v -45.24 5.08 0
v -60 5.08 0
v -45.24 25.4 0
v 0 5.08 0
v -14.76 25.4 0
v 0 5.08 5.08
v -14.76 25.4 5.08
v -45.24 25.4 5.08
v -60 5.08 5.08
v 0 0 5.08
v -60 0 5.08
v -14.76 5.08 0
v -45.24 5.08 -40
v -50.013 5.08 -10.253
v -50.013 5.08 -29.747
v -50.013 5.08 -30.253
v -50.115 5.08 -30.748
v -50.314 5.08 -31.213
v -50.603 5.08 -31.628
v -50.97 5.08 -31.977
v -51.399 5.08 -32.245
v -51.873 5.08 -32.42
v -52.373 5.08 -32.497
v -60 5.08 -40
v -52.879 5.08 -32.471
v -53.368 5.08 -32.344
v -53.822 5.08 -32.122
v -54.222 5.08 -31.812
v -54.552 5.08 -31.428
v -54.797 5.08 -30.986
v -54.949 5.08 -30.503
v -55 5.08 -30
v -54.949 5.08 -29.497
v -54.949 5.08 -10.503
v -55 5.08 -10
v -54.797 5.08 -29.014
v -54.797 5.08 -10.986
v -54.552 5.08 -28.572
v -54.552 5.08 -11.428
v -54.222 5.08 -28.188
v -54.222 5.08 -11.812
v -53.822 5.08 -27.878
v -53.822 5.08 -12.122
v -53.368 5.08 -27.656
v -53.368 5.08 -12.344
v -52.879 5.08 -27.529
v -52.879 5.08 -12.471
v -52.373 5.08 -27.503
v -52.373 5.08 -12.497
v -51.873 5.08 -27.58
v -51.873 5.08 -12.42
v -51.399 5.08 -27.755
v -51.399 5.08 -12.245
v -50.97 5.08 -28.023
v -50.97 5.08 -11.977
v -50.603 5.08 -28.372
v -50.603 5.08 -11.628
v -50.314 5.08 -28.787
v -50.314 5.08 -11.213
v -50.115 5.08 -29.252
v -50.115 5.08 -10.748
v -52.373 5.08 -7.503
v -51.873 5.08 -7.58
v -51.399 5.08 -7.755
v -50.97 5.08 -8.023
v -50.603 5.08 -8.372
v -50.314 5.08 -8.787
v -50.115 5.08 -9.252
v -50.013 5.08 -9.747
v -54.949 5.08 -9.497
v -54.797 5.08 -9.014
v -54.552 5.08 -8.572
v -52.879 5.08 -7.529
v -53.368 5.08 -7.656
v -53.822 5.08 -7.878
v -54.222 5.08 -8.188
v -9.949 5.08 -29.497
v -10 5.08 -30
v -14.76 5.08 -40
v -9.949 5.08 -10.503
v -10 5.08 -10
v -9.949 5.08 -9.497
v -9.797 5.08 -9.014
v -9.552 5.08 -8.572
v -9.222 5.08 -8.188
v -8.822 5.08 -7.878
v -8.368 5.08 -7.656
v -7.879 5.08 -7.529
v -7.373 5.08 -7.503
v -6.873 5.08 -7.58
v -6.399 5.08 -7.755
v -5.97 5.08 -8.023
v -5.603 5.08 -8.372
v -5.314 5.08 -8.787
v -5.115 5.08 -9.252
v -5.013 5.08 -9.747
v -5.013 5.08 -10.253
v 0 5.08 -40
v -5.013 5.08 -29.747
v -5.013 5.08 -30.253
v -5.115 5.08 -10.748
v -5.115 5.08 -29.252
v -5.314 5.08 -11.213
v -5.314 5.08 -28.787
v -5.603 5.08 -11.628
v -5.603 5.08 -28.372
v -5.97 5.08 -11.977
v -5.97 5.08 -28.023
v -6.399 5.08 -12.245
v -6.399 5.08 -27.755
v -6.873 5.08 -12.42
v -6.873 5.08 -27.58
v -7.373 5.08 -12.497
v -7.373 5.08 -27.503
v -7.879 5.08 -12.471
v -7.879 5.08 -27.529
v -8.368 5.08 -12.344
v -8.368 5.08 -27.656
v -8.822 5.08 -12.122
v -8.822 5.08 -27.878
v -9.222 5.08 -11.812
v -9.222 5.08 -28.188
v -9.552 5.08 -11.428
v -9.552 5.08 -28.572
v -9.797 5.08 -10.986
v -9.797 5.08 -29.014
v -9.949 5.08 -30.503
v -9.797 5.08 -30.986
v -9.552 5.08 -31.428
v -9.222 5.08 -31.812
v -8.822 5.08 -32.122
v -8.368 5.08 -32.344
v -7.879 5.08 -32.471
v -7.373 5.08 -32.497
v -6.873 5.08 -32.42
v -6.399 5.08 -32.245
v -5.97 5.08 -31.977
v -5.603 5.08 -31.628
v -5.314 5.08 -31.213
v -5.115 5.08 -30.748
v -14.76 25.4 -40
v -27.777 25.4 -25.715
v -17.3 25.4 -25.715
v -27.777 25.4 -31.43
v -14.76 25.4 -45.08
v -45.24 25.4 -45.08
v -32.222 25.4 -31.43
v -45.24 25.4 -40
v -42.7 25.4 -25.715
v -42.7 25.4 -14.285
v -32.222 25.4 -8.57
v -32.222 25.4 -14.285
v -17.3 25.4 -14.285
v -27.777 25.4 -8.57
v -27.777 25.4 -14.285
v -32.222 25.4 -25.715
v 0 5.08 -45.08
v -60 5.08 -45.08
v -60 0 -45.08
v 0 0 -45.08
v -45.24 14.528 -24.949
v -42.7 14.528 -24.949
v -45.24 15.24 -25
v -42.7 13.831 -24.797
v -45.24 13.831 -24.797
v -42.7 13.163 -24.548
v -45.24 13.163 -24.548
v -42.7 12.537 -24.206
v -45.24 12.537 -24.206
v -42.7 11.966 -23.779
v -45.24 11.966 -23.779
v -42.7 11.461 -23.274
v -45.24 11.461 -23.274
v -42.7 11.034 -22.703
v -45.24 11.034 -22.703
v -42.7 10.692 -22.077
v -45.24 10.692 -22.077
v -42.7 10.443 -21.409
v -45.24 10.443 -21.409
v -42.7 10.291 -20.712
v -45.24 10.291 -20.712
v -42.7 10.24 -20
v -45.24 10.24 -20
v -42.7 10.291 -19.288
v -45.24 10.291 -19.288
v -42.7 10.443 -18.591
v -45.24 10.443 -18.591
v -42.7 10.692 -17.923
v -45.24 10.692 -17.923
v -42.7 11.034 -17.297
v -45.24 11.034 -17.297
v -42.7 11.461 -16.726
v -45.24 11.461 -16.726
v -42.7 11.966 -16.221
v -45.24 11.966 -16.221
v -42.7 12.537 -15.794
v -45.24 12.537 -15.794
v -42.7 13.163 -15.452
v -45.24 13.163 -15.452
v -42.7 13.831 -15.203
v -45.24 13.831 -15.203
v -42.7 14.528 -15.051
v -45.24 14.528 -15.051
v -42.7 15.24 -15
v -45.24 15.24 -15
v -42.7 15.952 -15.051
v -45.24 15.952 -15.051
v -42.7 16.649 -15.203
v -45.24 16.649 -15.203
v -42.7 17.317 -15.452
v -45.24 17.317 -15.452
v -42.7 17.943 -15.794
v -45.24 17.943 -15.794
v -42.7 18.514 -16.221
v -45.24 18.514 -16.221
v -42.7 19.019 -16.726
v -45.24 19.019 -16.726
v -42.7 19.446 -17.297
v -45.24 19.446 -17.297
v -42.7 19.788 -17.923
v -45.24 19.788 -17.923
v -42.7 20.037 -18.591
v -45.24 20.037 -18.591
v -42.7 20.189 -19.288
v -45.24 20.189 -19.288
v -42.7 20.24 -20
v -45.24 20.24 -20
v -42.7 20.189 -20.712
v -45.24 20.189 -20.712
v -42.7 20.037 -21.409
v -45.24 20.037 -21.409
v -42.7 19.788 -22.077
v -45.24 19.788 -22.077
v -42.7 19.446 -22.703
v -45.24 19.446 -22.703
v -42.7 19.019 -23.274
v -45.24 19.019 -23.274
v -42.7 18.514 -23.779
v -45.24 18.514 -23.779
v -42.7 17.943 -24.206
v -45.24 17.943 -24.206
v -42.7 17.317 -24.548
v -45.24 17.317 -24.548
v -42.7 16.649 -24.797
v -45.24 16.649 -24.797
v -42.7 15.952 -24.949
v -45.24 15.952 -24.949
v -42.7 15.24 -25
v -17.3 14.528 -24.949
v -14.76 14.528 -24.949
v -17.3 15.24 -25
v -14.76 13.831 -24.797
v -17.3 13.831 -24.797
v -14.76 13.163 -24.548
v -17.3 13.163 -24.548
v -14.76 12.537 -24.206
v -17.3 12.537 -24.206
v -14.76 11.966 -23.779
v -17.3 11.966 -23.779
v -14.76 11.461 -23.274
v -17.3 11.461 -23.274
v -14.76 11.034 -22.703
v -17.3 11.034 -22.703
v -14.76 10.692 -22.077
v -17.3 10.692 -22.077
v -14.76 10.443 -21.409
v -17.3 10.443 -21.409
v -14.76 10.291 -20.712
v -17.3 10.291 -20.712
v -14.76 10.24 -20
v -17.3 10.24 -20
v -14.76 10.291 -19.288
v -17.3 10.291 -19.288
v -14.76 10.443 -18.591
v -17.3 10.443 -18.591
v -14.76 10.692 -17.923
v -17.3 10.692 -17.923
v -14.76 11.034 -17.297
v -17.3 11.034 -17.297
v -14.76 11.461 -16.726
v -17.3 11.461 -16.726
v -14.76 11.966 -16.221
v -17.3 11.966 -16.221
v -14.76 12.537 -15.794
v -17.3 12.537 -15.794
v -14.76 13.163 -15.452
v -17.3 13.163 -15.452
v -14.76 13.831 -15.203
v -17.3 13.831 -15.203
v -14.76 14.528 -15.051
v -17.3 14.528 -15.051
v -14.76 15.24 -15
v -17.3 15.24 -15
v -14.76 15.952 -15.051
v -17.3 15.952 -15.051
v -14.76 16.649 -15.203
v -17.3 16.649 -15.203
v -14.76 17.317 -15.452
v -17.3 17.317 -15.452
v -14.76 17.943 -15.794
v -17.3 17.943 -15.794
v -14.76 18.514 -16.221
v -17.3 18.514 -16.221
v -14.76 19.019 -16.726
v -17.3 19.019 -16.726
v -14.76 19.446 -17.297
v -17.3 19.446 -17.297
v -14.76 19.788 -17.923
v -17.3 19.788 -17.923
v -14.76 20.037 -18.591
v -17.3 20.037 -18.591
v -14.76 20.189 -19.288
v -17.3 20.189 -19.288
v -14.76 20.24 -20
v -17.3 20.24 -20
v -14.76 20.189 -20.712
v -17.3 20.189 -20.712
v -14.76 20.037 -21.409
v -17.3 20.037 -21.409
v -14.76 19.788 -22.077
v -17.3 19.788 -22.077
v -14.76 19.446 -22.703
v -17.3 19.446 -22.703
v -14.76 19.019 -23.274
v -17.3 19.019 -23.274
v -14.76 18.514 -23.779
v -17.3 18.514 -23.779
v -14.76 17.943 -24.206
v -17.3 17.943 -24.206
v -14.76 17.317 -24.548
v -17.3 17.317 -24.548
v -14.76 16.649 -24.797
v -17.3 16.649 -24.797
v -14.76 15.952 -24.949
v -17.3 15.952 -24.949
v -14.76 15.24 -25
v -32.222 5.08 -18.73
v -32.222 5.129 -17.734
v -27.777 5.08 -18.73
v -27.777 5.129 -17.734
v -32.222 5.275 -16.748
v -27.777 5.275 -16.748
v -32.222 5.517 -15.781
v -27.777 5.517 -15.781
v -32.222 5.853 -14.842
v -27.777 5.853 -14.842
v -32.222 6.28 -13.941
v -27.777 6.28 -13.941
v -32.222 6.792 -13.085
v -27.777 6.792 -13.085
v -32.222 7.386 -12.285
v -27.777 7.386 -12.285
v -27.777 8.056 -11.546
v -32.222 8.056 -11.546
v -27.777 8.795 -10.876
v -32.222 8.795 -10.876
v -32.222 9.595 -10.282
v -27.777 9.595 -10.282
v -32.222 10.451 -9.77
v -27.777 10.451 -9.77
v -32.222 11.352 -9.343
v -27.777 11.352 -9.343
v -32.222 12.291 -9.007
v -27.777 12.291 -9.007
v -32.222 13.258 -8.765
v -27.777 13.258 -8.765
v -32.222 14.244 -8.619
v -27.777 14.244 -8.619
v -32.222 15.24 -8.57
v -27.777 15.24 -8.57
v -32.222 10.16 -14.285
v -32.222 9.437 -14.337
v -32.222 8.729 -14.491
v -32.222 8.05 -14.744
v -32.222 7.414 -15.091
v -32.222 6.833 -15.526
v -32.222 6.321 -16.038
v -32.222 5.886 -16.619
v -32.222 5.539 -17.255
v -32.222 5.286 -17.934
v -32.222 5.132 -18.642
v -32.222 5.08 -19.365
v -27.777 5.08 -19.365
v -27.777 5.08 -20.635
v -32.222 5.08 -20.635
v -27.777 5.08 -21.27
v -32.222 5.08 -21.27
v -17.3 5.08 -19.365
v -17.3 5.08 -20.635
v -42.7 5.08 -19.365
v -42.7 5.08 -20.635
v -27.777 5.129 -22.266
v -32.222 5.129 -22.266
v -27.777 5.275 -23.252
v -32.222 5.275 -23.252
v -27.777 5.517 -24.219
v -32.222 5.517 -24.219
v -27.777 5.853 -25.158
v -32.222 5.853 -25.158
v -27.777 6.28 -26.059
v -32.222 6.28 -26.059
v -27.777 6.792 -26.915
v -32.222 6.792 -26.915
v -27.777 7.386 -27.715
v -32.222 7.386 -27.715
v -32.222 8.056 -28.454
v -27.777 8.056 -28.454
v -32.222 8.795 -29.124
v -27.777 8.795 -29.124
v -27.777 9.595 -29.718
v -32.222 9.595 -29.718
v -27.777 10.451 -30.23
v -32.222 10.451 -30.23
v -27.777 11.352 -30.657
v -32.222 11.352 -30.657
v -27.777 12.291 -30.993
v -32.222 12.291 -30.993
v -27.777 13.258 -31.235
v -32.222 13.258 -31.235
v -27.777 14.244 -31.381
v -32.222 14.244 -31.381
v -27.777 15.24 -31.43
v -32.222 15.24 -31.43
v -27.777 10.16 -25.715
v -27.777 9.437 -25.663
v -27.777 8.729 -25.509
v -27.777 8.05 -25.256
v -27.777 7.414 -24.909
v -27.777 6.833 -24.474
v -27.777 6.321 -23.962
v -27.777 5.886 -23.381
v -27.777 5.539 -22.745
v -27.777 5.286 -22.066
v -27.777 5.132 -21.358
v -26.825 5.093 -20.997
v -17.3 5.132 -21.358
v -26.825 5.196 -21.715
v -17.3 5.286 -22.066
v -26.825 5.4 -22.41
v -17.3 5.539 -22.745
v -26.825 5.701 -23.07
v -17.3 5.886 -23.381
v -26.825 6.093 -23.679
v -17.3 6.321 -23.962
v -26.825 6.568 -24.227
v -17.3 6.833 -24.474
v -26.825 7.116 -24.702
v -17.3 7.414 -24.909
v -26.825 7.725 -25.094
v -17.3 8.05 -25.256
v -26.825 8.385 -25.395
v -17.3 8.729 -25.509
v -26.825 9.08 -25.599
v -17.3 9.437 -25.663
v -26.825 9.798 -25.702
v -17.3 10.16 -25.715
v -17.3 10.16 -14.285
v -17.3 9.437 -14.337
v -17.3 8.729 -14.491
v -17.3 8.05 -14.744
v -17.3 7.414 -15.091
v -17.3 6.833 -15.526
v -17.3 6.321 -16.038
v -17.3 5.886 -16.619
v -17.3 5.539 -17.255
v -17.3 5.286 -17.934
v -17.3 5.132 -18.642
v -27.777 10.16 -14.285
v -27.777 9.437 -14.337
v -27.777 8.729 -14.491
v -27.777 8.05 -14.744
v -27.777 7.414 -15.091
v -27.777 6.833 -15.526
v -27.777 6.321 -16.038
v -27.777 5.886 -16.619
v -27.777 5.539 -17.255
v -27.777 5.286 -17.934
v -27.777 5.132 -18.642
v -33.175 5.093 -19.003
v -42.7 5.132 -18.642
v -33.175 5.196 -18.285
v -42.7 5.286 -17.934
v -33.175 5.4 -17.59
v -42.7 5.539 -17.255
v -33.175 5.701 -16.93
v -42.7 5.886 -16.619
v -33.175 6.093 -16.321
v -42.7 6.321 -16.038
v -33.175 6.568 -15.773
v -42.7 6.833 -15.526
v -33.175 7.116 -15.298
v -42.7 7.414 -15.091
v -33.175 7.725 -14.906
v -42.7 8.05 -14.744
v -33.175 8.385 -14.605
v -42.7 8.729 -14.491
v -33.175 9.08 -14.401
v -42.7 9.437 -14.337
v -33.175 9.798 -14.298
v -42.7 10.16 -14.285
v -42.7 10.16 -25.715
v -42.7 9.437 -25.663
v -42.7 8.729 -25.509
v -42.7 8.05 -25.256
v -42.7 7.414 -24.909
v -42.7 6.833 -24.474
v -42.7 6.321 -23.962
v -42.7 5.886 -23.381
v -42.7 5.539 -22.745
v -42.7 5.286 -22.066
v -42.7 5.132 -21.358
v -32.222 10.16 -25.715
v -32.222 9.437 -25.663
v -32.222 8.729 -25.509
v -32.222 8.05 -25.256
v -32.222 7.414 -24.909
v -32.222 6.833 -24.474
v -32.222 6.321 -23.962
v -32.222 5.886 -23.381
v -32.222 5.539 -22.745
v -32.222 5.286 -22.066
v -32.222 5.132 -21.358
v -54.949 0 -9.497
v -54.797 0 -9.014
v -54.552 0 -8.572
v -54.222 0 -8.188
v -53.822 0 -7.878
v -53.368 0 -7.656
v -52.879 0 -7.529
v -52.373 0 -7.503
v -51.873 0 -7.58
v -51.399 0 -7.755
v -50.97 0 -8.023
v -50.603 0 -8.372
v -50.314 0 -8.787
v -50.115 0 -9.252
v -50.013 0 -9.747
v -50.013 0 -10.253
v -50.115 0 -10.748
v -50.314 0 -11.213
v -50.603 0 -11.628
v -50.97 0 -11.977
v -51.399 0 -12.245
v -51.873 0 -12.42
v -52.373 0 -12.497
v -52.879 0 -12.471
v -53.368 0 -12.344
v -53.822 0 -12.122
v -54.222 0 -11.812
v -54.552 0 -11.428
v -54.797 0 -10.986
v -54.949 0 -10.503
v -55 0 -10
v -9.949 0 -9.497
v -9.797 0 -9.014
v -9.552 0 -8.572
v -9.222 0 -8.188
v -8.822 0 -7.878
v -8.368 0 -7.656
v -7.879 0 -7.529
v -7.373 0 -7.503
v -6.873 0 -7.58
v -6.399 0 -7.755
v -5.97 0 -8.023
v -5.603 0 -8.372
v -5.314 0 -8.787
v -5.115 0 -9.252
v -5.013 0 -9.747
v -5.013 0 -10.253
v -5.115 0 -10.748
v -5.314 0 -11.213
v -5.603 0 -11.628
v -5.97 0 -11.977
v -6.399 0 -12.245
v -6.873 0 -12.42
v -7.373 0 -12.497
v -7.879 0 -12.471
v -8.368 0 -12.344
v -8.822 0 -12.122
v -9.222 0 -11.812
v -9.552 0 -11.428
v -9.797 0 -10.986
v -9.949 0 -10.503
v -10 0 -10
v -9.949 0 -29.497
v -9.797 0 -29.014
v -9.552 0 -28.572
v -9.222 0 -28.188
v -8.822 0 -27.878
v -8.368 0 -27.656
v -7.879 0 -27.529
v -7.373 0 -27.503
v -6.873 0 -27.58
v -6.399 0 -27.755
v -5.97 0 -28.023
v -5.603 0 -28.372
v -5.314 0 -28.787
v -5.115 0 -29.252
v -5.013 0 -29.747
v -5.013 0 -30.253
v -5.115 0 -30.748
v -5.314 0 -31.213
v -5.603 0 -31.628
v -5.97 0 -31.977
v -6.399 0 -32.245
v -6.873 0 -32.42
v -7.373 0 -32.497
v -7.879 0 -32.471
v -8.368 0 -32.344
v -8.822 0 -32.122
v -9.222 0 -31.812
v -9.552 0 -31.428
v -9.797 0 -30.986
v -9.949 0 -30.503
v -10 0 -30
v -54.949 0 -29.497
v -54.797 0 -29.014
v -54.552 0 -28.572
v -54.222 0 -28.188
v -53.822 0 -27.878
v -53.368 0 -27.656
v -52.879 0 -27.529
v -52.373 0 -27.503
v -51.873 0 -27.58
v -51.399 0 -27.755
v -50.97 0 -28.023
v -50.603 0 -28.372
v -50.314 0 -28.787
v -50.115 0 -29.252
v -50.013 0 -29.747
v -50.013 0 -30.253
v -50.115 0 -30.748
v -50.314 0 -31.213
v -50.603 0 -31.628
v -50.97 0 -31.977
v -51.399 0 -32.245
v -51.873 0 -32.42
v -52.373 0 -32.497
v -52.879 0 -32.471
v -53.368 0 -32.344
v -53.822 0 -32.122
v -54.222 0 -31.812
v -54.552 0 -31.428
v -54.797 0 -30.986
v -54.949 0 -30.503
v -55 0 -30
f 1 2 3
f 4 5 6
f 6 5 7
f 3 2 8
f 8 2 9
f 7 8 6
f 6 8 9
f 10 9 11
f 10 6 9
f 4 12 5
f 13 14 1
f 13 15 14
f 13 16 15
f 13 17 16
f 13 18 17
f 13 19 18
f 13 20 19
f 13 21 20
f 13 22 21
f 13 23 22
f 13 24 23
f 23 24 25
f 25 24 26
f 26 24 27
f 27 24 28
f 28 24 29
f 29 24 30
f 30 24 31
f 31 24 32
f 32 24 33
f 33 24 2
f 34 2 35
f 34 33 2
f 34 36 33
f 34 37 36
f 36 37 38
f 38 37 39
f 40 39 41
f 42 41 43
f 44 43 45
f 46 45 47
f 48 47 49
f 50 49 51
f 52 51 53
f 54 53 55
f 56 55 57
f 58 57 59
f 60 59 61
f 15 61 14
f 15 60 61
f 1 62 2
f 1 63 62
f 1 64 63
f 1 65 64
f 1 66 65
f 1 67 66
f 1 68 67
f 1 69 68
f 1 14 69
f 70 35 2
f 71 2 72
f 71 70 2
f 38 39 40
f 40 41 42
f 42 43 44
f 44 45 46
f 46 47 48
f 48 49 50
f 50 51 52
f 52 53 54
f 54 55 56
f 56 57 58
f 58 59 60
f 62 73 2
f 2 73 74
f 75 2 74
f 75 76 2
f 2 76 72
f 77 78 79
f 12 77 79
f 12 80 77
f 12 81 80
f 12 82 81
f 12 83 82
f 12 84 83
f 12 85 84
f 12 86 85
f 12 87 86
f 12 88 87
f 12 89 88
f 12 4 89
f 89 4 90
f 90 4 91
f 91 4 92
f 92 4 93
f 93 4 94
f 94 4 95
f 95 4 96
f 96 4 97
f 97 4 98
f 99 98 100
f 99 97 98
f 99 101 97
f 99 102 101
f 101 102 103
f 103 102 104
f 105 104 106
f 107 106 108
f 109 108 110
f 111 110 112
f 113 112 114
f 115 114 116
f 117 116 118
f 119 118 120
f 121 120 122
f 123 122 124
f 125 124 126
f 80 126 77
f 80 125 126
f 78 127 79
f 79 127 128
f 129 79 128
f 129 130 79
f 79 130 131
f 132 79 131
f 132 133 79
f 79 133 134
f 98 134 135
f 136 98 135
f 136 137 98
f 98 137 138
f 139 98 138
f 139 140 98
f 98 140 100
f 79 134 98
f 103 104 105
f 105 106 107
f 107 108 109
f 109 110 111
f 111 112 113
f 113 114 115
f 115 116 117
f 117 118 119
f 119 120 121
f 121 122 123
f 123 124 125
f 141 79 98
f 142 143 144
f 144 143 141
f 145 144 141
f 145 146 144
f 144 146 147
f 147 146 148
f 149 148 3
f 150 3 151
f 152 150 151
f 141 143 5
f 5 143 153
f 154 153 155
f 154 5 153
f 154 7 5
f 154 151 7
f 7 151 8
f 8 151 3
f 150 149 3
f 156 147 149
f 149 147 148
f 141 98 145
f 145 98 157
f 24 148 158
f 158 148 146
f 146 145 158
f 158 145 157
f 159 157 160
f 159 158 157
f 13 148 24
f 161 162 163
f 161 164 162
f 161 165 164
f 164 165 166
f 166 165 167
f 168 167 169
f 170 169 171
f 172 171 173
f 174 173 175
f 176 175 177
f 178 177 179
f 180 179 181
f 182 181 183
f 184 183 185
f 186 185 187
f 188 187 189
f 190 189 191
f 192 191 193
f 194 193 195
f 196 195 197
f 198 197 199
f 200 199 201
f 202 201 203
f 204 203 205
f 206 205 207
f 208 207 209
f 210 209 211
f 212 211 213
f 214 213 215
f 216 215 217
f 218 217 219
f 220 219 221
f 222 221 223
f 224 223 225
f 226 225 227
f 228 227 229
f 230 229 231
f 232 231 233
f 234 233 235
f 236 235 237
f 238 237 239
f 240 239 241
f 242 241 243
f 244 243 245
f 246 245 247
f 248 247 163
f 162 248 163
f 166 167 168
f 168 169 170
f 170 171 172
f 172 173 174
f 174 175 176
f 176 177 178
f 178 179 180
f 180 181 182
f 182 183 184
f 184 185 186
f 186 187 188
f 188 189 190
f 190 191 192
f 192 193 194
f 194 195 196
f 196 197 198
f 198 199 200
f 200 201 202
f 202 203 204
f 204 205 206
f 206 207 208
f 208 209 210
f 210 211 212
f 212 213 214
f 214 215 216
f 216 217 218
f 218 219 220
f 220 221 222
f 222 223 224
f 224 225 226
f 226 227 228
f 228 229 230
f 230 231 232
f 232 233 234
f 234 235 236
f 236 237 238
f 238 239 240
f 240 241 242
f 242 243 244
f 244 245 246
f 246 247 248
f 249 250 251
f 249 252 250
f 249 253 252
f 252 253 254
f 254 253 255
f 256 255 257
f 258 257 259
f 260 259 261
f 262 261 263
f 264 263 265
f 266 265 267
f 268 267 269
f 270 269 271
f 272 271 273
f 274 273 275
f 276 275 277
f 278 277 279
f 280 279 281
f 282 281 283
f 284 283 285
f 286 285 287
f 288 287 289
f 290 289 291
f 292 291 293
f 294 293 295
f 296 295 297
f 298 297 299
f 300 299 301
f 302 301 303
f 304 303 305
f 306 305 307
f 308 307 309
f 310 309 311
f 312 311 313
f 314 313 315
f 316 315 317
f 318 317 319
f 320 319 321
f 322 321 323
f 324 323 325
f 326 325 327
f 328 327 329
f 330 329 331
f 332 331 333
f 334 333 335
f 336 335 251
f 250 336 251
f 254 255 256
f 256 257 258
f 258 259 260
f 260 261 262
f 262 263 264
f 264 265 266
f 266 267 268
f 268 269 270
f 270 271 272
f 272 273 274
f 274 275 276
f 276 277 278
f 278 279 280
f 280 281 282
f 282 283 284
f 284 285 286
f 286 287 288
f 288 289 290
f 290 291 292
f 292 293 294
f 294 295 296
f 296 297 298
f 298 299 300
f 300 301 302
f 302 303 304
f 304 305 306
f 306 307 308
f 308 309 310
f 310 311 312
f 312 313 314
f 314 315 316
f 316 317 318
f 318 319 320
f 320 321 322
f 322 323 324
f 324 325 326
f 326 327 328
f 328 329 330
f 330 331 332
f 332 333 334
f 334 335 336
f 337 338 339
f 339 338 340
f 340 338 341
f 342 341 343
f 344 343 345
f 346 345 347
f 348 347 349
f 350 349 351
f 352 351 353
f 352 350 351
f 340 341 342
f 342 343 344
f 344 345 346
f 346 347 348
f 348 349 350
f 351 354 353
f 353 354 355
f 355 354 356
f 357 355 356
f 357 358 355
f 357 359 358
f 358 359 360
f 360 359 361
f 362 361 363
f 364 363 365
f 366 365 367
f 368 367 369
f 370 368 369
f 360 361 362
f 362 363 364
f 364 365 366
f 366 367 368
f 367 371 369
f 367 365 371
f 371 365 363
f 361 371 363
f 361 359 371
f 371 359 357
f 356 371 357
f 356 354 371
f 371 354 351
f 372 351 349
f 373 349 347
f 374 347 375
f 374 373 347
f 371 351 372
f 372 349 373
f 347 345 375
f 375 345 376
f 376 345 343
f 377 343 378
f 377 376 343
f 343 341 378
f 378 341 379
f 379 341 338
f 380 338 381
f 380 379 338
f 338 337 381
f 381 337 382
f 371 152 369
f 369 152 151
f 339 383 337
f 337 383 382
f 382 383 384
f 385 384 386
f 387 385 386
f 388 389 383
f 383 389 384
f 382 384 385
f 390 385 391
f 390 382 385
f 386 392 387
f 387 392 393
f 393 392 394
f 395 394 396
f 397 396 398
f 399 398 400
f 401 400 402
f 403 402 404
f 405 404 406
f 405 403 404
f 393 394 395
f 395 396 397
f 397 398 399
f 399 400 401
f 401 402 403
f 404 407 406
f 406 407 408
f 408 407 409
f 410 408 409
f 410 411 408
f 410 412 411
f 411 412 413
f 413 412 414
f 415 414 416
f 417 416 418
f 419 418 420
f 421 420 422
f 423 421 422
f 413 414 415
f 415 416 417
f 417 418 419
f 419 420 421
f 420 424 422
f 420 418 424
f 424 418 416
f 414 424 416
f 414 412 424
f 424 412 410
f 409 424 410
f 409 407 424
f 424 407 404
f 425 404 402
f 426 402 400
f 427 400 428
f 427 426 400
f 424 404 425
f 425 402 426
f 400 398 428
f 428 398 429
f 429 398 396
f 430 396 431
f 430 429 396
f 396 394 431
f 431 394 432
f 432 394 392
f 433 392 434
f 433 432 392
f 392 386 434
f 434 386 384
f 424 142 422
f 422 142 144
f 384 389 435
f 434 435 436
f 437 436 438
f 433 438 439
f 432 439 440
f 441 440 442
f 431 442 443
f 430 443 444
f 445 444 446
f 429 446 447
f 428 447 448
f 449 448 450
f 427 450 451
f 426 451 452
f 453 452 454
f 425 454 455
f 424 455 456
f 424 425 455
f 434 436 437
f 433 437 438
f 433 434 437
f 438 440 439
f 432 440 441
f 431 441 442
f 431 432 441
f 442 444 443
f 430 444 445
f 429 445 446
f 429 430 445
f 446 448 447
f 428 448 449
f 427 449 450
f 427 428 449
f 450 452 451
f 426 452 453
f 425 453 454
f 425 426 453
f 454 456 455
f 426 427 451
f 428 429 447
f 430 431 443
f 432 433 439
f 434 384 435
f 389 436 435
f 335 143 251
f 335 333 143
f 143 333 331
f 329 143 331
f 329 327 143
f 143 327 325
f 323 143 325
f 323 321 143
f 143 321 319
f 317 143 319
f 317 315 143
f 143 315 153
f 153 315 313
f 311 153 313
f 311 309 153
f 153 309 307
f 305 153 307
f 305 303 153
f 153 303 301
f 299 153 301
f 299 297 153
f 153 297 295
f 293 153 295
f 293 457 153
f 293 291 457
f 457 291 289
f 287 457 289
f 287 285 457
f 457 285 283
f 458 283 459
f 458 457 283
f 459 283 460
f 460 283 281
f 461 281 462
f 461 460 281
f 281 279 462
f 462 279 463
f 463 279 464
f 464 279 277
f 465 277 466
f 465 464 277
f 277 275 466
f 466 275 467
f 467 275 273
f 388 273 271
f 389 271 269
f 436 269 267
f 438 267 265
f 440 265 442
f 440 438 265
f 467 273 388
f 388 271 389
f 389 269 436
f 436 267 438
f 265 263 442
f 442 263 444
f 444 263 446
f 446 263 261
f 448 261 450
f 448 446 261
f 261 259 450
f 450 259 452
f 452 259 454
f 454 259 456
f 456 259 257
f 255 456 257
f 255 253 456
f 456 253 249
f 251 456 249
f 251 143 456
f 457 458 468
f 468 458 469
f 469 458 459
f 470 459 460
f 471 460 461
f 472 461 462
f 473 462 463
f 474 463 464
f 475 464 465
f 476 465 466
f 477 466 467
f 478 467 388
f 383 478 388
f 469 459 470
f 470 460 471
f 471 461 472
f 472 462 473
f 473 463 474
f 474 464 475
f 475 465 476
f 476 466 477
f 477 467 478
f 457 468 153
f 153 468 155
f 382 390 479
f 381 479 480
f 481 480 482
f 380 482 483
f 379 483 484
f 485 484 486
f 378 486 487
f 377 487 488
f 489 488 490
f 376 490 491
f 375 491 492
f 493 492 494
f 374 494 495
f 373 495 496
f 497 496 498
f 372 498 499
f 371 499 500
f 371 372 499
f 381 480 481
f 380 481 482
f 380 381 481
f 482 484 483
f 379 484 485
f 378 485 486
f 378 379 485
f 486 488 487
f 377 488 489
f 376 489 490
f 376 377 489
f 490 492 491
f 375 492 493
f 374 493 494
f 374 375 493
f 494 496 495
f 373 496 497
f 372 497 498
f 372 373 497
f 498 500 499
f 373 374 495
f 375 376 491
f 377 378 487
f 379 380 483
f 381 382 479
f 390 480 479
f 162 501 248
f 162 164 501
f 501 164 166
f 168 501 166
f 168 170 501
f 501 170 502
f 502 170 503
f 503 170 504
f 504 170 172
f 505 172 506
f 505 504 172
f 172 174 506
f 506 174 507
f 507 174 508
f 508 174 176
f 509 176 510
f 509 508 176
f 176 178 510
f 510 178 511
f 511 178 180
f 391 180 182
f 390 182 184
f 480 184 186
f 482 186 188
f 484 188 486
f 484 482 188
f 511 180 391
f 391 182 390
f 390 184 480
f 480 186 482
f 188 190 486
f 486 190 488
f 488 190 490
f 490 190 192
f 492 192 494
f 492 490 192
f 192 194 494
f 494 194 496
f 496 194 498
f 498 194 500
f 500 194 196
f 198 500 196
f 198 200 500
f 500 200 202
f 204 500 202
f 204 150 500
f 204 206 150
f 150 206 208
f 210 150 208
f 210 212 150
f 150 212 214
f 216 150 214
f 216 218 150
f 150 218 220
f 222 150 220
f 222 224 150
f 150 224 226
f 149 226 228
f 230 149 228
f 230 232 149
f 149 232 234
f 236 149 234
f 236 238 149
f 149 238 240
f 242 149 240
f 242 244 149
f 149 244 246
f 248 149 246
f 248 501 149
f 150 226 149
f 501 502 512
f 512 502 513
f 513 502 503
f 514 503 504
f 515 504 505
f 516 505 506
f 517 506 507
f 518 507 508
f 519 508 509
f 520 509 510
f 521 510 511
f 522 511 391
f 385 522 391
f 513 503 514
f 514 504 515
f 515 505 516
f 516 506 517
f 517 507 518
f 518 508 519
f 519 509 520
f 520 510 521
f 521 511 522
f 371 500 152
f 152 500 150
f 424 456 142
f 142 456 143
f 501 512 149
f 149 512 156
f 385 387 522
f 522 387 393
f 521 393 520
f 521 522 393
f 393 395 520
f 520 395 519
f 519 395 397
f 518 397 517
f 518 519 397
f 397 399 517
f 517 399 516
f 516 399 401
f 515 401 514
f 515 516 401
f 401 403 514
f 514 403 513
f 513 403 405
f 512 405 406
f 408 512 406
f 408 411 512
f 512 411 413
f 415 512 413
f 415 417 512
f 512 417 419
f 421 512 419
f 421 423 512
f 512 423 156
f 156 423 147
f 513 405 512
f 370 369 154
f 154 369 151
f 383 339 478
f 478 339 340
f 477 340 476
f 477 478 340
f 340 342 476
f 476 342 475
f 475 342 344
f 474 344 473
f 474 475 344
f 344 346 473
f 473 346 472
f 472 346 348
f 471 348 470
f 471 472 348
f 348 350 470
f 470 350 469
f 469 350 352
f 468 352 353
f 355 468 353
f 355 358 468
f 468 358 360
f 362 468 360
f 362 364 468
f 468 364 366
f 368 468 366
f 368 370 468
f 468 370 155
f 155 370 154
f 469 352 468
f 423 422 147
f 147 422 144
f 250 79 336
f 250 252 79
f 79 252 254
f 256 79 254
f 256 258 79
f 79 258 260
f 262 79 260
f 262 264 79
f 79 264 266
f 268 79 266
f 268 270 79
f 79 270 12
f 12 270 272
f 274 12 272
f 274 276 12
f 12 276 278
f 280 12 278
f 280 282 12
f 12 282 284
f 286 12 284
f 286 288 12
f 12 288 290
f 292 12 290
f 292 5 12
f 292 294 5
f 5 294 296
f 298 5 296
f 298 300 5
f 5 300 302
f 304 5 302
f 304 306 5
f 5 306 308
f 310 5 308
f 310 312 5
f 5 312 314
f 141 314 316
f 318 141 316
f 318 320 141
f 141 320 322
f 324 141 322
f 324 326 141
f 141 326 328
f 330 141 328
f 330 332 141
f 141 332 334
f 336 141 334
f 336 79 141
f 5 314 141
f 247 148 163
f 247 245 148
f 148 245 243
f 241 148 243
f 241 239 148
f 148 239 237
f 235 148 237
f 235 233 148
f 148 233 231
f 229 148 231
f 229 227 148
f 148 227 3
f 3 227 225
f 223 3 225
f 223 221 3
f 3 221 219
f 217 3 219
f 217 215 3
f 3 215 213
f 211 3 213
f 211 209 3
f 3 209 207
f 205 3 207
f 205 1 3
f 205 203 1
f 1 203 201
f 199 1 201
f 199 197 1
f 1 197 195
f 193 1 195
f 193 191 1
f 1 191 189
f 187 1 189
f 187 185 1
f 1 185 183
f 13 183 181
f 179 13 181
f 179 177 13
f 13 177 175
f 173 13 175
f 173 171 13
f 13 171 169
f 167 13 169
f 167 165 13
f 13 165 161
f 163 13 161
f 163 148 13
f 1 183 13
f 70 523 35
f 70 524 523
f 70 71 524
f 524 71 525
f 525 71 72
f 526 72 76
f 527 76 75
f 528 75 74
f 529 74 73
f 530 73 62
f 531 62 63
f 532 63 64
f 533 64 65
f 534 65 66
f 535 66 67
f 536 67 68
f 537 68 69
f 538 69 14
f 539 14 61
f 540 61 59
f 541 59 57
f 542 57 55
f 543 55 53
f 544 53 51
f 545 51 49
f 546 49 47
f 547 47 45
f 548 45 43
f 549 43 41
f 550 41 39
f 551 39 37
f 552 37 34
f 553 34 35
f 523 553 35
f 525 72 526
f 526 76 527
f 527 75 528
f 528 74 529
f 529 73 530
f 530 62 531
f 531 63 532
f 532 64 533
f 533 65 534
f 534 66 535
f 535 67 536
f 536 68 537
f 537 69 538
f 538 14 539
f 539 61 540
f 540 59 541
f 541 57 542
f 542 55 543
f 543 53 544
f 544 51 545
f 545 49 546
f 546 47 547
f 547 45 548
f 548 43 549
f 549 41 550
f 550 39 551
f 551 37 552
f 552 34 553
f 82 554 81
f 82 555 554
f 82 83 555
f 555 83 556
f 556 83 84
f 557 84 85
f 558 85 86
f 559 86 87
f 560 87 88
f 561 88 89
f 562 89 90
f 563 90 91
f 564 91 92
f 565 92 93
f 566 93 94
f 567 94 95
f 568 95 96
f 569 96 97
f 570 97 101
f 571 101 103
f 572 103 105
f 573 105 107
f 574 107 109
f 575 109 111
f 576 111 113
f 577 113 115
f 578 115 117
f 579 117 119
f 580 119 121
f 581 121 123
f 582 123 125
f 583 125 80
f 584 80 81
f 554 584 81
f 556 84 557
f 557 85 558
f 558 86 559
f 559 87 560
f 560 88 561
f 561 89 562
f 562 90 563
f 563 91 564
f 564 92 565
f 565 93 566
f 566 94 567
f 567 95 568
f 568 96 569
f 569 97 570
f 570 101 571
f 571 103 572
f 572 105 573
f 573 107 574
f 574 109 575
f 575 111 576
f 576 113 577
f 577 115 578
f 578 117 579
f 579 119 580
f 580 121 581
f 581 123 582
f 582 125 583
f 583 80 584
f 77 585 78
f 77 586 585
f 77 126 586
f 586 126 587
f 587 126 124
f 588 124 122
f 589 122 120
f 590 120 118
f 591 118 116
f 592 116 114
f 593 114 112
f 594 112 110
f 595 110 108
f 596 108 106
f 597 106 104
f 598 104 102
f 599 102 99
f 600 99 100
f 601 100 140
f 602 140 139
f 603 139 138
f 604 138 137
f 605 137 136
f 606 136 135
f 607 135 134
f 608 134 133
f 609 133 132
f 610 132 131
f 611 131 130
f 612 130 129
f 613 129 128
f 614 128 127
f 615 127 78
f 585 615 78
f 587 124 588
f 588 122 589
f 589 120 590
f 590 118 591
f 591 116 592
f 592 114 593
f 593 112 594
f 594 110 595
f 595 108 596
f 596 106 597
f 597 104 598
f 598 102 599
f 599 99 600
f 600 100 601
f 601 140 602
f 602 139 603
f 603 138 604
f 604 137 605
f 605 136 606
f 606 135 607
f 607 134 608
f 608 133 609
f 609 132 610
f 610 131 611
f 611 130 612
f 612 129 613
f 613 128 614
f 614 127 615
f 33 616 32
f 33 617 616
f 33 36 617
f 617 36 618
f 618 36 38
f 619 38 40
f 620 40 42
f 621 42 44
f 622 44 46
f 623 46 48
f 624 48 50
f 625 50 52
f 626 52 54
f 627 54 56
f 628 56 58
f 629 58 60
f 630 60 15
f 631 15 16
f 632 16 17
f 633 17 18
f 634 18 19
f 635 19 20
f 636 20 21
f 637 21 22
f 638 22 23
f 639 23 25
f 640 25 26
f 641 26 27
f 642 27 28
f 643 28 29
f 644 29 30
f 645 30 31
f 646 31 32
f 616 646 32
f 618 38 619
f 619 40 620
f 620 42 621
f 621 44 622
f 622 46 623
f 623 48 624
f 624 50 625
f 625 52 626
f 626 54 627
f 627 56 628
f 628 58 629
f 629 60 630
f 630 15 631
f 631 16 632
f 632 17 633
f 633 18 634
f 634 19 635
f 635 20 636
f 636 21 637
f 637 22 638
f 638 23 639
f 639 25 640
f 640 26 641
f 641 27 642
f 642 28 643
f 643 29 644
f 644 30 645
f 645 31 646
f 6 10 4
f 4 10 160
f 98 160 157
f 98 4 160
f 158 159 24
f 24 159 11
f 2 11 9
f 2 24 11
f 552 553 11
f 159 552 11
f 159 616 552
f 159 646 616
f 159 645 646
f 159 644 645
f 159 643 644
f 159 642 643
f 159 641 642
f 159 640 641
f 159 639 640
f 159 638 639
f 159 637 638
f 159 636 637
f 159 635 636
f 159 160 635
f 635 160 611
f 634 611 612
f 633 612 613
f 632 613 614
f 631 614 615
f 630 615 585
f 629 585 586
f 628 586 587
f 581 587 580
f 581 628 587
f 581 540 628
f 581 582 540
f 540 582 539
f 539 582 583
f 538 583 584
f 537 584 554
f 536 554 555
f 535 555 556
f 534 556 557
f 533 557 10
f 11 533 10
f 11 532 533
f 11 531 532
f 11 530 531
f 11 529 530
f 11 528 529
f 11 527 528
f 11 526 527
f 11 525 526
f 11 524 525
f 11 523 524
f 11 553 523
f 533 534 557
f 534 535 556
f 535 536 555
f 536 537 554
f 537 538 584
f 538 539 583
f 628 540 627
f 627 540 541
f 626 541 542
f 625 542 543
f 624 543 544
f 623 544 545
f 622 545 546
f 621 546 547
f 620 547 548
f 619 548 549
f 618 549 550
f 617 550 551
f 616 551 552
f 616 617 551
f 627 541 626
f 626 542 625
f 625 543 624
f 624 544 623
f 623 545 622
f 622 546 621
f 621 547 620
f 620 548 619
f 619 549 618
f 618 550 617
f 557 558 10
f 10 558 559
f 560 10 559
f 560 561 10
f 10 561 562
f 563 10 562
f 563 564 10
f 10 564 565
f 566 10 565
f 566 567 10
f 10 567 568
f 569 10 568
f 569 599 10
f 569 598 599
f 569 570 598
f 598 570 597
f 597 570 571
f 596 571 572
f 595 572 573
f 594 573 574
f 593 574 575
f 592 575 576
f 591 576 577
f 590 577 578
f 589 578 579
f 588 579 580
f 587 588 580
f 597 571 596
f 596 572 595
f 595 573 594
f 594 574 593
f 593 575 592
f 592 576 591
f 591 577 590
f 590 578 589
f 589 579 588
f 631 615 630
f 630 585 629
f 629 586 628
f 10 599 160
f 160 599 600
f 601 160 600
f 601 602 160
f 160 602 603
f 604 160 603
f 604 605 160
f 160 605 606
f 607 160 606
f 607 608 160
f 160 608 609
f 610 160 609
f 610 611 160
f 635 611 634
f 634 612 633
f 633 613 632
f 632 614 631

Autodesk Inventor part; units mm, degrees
ref_plane "YZ Plane" through (0, 0, 0) normal (1, 0, 0) x (0, 1, 0)
ref_plane "XZ Plane" through (0, 0, 0) normal (0, 1, 0) x (-1, 0, 0)
ref_plane "XY Plane" through (0, 0, 0) normal (0, 0, 1) x (1, 0, 0)
sketch "Sketch1" plane through (0, 0, 0) normal (0, 1, 0) x (-1, 0, 0)
  line L0 (0, 0) -> (60, 0)
  line L1 (60, 0) -> (60, -40)
  line L2 (60, -40) -> (0, -40)
  line L3 (0, -40) -> (0, 0)
  line L4 (0, -20) -> (60, -20)
  line L5 (0, 0) -> (0, -20)
  line L6 (0, -10) -> (7.5, -10)
  line L7 (0, -10) -> (7.5, -10) construction
  circle A0 centre (7.5, -10) radius 2.5
  line L8 (60, -10) -> (52.5, -10)
  circle A1 centre (52.5, -10) radius 2.5
  circle A2 centre (7.5, -30) radius 2.5
  circle A3 centre (52.5, -30) radius 2.5
  dimension "d0" = 60
  dimension "d1" = 40
  dimension "d2" = 7.5
  dimension "d3" = 0
  dimension "d4" = 5
  dimension "d5" = 7.5
  dimension "d6" = 5
extrude "Extrusion1" add sketch "Sketch1" along normal blind 5.08
ref_plane "Work Plane1" through (-30, 0, -40) normal (-1, 0, 0) x (0, 0, 1)
sketch "Sketch2" plane through (-30, 0, -40) normal (-1, 0, 0) x (0, 0, 1)
  line L0 (40, 0) -> (0, 0) projected
  line L1 (0, 0) -> (0, 5.08) projected
  line L2 (40, 5.08) -> (0, 5.08) projected
  line L3 (40, 0) -> (40, 5.08) projected
  line L4 (0, 0) -> (40, 0) projected
  line L5 (20, 0) -> (20, 25.4)
  line L6 (20, 25.4) -> (20, 15.24)
  line L7 (7.3, 5.08) -> (32.7, 5.08)
  line L8 (32.7, 5.08) -> (32.7, 25.4)
  line L9 (32.7, 25.4) -> (7.3, 25.4)
  line L10 (7.3, 25.4) -> (7.3, 5.08)
  line L11 (7.3, 5.08) -> (32.7, 25.4) construction
  line L12 (32.7, 5.08) -> (7.3, 25.4) construction
  dimension "d9" = 25.4
  dimension "d10" = 10.16
  dimension "d11" = 25.4
extrude "Extrusion2" add sketch "Sketch2" along normal mid plane 30.48 contours L5 L9 L8 L2 | L2 L10 L9 L5
sketch "Sketch3" plane through (-45.24, 25.4, -32.7) normal (0, 1, 0) x (1, 0, 0)
  line L0 (30.48, 0) -> (0, 0) projected
  line L1 (0, -25.4) -> (0, 0) projected
  line L2 (30.48, -25.4) -> (0, -25.4) projected
  line L3 (30.48, 0) -> (30.48, -25.4) projected
  line L4 (17.4625, -1.27) -> (13.0175, -1.27)
  line L5 (13.0175, -1.27) -> (13.0175, -24.13)
  line L6 (13.0175, -24.13) -> (17.4625, -24.13)
  line L7 (17.4625, -24.13) -> (17.4625, -1.27)
  line L8 (17.4625, -1.27) -> (13.0175, -24.13) construction
  line L9 (13.0175, -1.27) -> (17.4625, -24.13) construction
  line L10 (27.94, -6.985) -> (2.54, -6.985)
  line L11 (2.54, -6.985) -> (2.54, -18.415)
  line L12 (2.54, -18.415) -> (27.94, -18.415)
  line L13 (27.94, -18.415) -> (27.94, -6.985)
  line L14 (27.94, -6.985) -> (2.54, -18.415) construction
  line L15 (2.54, -6.985) -> (27.94, -18.415) construction
  point P0 (45.24, -32.7)
  point P1 (15.24, -12.7)
  point P2 (15.24, -12.7)
  dimension "d14" = 4.445
  dimension "d15" = 22.86
  dimension "d16" = 25.4
  dimension "d17" = 11.43
extrude "Extrusion3" cut sketch "Sketch3" against normal blind 20.32 contours L7 L10 L5 L4 | L10 L13 L12 L7 | L7 L12 L5 L10 | L5 L12 L11 L10 | L7 L6 L5 L12
fillet "Fillet1" radius 5.08 4 edges at (-37.4613, 5.08, -25.715) (-37.4613, 5.08, -14.285) (-22.5388, 5.08, -14.285) (-22.5388, 5.08, -25.715)
fillet "Fillet2" radius 10.16 2 edges at (-30, 5.08, -31.43) (-30, 5.08, -8.57)
sketch "Sketch4" plane through (-42.7, 25.4, -14.285) normal (1, 0, 0) x (0, 0, -1)
  arc A0 (0, -15.24) -> (5.08, -20.32) centre (5.08, -15.24) ccw projected
  line L0 (5.08, -20.32) -> (6.35, -20.32) projected
  arc A1 (6.35, -20.32) -> (11.43, -15.24) centre (6.35, -15.24) ccw projected
  line L1 (11.43, 0) -> (11.43, -15.24) projected
  line L2 (0, 0) -> (11.43, 0) projected
  line L3 (0, 0) -> (0, -15.24) projected
  line L4 (5.715, 0) -> (5.715, -10.16)
  line L5 (5.715, 0) -> (15.875, 0) construction
  circle A2 centre (5.715, -10.16) radius 5
  point P0 (-14.285, -25.4)
  dimension "d22" = 10.16
  dimension "d23" = 90
  dimension "d24" = 10
extrude "Extrusion4" cut sketch "Sketch4" along normal mid plane 117.1575 contours A2
sketch "Sketch5" plane through (0, 0, -40) normal (0, 0, -1) x (-1, 0, 0)
  line L0 (10, 0) -> (10, 5.08) projected
  line L1 (0, 0) -> (60, 0) projected
  line L2 (60, 0) -> (60, 5.08) projected
  line L3 (0, 5.08) -> (60, 5.08) projected
  line L4 (0, 0) -> (0, 5.08) projected
  line L5 (45.24, 5.08) -> (14.76, 5.08) projected
  line L6 (45.24, 25.4) -> (45.24, 5.08) projected
  line L7 (14.76, 25.4) -> (45.24, 25.4) projected
  line L8 (14.76, 5.08) -> (14.76, 25.4) projected
  line L9 (14.76, 25.4) -> (0, 5.08)
  line L10 (45.24, 5.08) -> (45.24, 25.4) projected
  line L11 (45.24, 25.4) -> (60, 5.08)
extrude "Extrusion5" add sketch "Sketch5" along normal blind 5.08
sketch "Sketch6" plane through (-14.76, 5.08, -32.7) normal (0, 0, -1) x (-1, 0, 0)
  line L0 (13.0175, 0) -> (2.54, 0) projected
  line L1 (30.48, 0) -> (0, 0) projected
  line L2 (30.48, 20.32) -> (30.48, 0) projected
  line L3 (0, 20.32) -> (30.48, 20.32) projected
  line L4 (0, 0) -> (0, 20.32) projected
  point P0 (-14.76, -5.08)
extrude "Extrusion6" add sketch "Sketch6" along normal up to surface (7.3 mm away)
ref_plane "Work Plane2" through (-27.7775, 25.4, -20) normal (0, 0, 1) x (1, 0, 0)
mirror "Mirror1" about plane through (-27.7775, 25.4, -20) normal (0, 0, 1) of "Extrusion5", "Extrusion6"
properties part number "Ythruster"
